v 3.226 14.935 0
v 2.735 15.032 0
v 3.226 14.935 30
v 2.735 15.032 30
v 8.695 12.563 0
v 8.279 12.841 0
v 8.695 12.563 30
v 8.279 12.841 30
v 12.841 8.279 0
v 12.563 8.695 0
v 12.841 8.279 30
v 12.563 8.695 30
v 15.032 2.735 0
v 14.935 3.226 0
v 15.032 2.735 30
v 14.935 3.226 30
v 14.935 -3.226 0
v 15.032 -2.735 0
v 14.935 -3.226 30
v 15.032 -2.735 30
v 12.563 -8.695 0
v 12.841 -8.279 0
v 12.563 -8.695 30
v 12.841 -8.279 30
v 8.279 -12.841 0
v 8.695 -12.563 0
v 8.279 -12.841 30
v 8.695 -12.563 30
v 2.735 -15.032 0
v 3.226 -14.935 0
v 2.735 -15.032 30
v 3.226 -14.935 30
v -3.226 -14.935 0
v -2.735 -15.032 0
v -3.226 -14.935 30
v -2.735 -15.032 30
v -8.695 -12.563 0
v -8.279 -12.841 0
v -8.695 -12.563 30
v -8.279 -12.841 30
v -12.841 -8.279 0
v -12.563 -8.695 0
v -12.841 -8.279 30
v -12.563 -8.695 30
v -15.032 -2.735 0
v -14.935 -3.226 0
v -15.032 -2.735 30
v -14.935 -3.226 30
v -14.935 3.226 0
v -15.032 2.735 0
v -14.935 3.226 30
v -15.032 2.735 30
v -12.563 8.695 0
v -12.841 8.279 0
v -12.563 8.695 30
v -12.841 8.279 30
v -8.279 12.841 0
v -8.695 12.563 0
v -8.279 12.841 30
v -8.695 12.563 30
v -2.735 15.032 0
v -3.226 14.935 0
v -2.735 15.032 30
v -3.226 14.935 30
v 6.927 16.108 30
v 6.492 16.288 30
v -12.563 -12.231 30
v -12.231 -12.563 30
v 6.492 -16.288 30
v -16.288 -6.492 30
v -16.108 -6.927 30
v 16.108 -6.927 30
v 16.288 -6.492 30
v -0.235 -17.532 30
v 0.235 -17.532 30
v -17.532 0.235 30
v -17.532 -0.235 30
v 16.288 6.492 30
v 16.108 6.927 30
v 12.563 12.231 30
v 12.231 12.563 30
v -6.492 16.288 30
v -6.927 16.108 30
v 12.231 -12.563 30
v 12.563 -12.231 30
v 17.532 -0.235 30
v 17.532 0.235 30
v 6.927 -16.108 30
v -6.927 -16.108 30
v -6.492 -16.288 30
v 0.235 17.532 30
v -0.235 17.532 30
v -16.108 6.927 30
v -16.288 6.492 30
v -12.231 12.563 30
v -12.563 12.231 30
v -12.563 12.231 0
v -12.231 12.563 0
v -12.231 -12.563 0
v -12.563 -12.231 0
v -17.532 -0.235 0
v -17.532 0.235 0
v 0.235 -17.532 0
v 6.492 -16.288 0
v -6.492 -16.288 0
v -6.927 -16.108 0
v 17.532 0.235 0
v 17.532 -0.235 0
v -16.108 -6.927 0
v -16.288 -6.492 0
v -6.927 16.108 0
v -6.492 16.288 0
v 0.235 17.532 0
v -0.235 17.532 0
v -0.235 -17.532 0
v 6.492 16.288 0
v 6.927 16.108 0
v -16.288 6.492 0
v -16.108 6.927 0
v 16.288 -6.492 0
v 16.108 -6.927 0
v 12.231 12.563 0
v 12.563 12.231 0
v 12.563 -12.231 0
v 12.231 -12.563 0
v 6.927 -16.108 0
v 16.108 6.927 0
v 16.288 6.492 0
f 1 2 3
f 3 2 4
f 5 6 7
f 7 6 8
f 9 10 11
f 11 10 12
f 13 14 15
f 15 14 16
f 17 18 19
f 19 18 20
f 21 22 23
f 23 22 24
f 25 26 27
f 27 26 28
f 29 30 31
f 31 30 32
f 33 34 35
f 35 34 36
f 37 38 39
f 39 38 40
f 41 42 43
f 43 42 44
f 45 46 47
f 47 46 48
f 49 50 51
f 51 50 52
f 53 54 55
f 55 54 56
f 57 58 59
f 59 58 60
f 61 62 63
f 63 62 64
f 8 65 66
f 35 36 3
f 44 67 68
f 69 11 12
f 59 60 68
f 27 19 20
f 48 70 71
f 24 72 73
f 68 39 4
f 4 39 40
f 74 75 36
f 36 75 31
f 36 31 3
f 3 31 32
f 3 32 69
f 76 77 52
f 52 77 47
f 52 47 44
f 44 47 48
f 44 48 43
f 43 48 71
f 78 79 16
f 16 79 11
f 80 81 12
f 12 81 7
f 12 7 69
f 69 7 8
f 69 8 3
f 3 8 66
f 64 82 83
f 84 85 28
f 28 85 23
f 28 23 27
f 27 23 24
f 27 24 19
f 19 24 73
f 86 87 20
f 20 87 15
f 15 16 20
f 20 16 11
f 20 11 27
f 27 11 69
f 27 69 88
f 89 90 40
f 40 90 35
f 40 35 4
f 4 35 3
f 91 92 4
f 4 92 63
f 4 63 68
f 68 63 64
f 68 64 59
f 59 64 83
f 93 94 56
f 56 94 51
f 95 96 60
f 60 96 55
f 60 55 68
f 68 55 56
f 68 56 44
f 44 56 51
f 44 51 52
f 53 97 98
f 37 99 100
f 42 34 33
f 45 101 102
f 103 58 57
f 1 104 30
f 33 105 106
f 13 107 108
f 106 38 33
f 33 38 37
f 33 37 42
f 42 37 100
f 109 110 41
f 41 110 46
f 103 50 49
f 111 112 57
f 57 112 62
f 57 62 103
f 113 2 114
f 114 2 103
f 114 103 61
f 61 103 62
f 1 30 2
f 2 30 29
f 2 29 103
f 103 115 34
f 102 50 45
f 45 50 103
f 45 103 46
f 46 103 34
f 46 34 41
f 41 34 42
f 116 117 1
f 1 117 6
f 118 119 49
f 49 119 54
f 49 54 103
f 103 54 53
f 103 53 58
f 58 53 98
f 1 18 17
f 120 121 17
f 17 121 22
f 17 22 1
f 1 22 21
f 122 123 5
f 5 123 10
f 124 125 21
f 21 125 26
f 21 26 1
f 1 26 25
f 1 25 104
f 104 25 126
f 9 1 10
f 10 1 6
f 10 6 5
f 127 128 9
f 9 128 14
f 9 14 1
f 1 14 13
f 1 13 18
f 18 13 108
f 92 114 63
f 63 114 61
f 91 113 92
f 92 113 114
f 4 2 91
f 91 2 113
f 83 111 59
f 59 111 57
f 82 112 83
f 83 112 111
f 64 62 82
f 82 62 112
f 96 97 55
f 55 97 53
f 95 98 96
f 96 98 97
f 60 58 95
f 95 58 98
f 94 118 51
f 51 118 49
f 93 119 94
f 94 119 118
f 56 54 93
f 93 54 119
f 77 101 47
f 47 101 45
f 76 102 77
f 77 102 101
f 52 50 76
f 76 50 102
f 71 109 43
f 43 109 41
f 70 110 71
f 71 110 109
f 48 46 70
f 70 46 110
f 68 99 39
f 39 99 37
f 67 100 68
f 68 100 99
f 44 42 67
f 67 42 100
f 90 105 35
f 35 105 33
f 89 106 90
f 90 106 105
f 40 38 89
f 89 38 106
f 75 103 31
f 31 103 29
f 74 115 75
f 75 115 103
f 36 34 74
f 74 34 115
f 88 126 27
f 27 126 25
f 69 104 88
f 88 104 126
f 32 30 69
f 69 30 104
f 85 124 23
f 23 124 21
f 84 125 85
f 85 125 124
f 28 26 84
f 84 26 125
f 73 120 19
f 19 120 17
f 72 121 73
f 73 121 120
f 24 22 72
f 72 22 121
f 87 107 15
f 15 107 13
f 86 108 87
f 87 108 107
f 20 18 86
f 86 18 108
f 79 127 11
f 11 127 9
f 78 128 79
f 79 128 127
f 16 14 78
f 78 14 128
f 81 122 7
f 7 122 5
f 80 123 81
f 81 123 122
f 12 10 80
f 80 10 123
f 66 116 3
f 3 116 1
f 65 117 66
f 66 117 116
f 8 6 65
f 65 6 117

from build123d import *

# Parameters (mm, degrees)
SKETCH2_R           = 15.278874537
BOSS_EXTRUDE1_DEPTH = 30
BOSS_EXTRUDE2_DEPTH = 30
CIRPATTERN1_COUNT   = 16


with BuildPart() as part:
    # Sketch2 → Boss-Extrude1 (new body)
    with BuildSketch(Plane.XY):
        Circle(SKETCH2_R)
    extrude(amount=BOSS_EXTRUDE1_DEPTH)

    # Sketch3 → Boss-Extrude2 (add)
    with BuildSketch(Plane(origin=(0, 0, 0), x_dir=(-1, 0, 0), z_dir=(0, 0, -1))):
        with BuildLine():
            Line((-2.735176163, 15.032059688), (-0.235176163, 17.532059688))
            Line((-0.235176163, 17.532059688), (0.235176163, 17.532059688))
            Line((0.235176163, 17.532059688), (2.735176163, 15.032059688))
            ThreePointArc((2.735176163, 15.032059688), (0, 15.278874537), (-2.735176163, 15.032059688))
        make_face()
    boss_extrude2 = extrude(amount=-BOSS_EXTRUDE2_DEPTH)

    # CirPattern1: Boss-Extrude2 ×16 about axis
    cirpattern1_axis = Axis((0, 0, 0), (0, 0, 1))
    for i in range(1, CIRPATTERN1_COUNT):
        add(boss_extrude2.rotate(cirpattern1_axis, i * 360 / CIRPATTERN1_COUNT))


solid = part.part
